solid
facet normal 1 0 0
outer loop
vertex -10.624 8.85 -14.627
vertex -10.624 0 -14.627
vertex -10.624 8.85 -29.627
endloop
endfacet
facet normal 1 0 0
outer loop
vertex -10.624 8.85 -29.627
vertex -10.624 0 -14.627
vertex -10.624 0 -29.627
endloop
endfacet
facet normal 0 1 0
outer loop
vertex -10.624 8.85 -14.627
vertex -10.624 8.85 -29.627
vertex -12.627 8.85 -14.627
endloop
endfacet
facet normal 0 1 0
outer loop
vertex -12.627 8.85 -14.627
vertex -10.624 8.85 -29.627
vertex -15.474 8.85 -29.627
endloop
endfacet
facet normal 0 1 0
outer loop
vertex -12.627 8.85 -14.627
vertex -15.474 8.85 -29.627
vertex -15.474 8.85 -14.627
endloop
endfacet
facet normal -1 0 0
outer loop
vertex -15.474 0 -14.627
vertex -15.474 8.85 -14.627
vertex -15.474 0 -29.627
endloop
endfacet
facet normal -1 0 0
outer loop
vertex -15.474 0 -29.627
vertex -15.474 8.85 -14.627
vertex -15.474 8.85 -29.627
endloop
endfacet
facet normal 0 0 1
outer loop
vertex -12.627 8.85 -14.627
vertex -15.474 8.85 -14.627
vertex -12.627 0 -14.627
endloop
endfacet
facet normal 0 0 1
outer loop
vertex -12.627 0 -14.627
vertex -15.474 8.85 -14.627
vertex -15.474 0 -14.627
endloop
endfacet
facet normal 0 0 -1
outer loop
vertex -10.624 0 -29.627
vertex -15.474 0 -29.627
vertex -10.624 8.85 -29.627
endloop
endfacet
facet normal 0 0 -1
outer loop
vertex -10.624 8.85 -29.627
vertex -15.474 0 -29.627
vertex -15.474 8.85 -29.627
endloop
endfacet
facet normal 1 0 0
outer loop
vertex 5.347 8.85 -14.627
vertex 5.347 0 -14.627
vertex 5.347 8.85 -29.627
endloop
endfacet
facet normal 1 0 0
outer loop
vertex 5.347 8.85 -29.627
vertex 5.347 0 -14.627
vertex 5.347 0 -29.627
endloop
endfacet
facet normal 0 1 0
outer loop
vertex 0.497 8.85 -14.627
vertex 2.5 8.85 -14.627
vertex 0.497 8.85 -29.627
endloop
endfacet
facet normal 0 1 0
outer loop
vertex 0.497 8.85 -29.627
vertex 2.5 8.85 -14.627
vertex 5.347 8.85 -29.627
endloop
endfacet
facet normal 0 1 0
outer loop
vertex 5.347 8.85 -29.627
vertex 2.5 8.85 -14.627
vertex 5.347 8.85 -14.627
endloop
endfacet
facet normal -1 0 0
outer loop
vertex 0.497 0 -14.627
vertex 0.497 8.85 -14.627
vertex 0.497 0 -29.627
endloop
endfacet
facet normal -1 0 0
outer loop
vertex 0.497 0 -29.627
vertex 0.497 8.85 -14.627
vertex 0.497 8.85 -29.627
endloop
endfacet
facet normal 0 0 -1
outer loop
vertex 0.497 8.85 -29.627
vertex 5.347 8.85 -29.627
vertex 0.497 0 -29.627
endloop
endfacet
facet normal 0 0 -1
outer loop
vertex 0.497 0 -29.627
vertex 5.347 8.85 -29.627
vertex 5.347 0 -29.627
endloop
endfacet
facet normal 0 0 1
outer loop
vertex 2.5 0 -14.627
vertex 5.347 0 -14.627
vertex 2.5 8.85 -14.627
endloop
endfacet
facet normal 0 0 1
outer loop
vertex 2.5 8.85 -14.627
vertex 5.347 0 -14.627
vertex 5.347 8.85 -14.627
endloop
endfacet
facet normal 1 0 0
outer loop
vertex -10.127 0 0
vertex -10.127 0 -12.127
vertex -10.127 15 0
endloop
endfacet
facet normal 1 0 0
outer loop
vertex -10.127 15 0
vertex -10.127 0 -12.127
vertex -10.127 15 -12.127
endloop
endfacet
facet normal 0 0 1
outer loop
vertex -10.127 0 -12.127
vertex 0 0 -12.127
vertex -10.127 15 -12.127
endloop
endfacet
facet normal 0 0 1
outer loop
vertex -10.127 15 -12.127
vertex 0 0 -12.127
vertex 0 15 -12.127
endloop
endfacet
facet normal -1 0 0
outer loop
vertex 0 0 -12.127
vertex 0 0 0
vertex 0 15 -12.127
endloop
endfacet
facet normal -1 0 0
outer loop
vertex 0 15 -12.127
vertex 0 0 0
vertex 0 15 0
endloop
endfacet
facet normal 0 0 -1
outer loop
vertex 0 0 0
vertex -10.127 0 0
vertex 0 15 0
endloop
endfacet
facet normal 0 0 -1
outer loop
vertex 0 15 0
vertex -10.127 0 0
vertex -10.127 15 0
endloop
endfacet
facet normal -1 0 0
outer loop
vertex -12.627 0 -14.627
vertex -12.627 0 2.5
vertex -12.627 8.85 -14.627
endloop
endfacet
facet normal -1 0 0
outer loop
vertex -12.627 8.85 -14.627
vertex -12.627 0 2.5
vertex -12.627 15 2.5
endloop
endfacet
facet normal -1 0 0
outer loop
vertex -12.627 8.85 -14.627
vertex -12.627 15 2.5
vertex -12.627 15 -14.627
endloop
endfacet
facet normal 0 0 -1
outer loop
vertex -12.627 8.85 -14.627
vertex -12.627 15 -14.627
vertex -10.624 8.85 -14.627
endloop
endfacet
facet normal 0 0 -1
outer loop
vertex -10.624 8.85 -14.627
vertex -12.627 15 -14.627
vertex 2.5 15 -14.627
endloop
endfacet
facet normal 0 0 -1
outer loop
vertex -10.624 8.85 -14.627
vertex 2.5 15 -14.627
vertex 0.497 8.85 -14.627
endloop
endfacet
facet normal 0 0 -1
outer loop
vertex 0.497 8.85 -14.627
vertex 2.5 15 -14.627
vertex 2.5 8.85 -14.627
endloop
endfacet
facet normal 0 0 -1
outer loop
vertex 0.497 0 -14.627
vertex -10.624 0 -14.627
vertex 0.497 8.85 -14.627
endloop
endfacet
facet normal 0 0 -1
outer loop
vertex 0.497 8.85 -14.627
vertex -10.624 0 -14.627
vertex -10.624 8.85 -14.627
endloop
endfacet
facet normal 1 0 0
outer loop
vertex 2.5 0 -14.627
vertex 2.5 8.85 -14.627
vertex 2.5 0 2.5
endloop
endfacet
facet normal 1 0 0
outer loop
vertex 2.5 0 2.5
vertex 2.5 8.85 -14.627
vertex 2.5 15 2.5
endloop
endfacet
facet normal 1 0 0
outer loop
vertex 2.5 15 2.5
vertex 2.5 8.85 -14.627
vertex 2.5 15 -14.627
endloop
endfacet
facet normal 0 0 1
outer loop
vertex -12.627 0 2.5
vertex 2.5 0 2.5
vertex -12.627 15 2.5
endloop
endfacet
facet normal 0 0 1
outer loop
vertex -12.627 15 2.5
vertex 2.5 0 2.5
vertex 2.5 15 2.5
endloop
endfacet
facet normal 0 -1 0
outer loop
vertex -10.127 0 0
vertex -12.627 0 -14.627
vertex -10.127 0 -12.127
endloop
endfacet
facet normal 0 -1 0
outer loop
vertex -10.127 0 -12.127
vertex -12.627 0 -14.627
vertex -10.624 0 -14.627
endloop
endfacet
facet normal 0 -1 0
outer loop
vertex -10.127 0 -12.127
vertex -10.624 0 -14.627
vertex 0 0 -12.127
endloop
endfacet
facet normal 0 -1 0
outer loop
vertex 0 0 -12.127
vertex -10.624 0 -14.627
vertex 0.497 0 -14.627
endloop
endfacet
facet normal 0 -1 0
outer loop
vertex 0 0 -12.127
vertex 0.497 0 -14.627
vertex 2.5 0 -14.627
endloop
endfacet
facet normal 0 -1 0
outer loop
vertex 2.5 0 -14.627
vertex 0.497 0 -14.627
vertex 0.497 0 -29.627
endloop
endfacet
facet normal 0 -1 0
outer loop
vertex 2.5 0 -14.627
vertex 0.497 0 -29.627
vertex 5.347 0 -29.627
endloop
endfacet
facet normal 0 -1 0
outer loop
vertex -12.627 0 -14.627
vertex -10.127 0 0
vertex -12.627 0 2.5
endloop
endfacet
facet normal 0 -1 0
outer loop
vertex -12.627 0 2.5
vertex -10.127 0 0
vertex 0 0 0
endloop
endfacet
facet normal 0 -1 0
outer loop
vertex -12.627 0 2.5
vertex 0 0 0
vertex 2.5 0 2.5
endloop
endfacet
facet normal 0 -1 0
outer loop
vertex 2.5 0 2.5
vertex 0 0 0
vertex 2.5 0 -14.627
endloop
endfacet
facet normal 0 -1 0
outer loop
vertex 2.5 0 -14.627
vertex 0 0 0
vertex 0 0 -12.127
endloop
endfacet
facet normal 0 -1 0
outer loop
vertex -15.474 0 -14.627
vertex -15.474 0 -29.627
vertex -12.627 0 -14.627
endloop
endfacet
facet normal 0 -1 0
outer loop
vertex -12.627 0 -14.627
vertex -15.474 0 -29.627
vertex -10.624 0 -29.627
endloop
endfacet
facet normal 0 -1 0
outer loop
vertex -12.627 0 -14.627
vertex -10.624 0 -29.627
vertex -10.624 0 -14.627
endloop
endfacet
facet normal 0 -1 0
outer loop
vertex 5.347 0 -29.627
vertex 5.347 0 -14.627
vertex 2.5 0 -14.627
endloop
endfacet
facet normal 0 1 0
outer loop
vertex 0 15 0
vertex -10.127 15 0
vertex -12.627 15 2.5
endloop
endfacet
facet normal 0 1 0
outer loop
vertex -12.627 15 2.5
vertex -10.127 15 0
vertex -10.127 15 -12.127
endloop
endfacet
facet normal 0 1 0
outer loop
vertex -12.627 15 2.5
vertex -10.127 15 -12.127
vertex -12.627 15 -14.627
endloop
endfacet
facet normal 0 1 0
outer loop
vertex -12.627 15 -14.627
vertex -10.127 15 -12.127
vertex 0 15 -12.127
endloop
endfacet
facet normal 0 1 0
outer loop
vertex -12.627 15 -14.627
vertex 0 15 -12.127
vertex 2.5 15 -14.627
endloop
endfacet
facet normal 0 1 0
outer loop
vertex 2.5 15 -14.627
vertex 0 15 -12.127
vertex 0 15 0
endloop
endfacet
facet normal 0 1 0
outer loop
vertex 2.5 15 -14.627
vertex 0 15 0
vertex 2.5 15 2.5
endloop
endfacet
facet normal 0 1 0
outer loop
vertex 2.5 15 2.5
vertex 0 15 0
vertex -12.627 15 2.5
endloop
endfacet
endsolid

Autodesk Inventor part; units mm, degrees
ref_plane "YZ Plane" through (0, 0, 0) normal (1, 0, 0) x (0, 1, 0)
ref_plane "XZ Plane" through (0, 0, 0) normal (0, 1, 0) x (-1, 0, 0)
ref_plane "XY Plane" through (0, 0, 0) normal (0, 0, 1) x (1, 0, 0)
sketch "Sketch1" plane through (0, 0, 0) normal (0, 1, 0) x (-1, 0, 0)
  line L0 (0, 0) -> (10.127, 0)
  line L1 (10.127, 0) -> (10.127, -12.127)
  line L2 (10.127, -12.127) -> (0, -12.127)
  line L3 (0, -12.127) -> (0, 0)
  line L4 (-2.5, 2.5) -> (12.627, 2.5)
  line L5 (12.627, 2.5) -> (12.627, -14.627)
  line L6 (12.627, -14.627) -> (-2.5, -14.627)
  line L7 (-2.5, -14.627) -> (-2.5, 2.5)
  dimension "d5" = 10.127
  dimension "d6" = 12.127
  dimension "d7" = 2.5
  dimension "d8" = 2.5
  dimension "d9" = 2.5
  dimension "d10" = 2.5
extrude "Extrusion2" add sketch "Sketch1" along normal blind 15
sketch "Sketch3" plane through (2.5, 0, -14.627) normal (0, 0, -1) x (-1, 0, 0)
  line L0 (17.974, 0) -> (13.124, 0)
  line L1 (13.124, 0) -> (13.124, 8.85)
  line L2 (13.124, 8.85) -> (17.974, 8.85)
  line L3 (17.974, 8.85) -> (17.974, 0)
  line L4 (2.003, 0) -> (-2.847, 0)
  line L5 (-2.847, 0) -> (-2.847, 8.85)
  line L6 (-2.847, 8.85) -> (2.003, 8.85)
  line L7 (2.003, 8.85) -> (2.003, 0)
  line L8 (15.127, 0) -> (0, 0) projected
  line L9 (7.5635, 0) -> (7.5635, 15)
  line L10 (12.627, 15) -> (2.5, 15) projected
  dimension "d14" = 4.85
  dimension "d15" = 8.85
  dimension "d16" = 4.85
  dimension "d17" = 8.85
  dimension "d18" = 11.121
extrude "Extrusion3" add sketch "Sketch3" along normal blind 15
equation "\"d8\" = d7"
equation "\"d9\" = d7"
equation "\"d10\" = d7"
properties part number "motorMount"
